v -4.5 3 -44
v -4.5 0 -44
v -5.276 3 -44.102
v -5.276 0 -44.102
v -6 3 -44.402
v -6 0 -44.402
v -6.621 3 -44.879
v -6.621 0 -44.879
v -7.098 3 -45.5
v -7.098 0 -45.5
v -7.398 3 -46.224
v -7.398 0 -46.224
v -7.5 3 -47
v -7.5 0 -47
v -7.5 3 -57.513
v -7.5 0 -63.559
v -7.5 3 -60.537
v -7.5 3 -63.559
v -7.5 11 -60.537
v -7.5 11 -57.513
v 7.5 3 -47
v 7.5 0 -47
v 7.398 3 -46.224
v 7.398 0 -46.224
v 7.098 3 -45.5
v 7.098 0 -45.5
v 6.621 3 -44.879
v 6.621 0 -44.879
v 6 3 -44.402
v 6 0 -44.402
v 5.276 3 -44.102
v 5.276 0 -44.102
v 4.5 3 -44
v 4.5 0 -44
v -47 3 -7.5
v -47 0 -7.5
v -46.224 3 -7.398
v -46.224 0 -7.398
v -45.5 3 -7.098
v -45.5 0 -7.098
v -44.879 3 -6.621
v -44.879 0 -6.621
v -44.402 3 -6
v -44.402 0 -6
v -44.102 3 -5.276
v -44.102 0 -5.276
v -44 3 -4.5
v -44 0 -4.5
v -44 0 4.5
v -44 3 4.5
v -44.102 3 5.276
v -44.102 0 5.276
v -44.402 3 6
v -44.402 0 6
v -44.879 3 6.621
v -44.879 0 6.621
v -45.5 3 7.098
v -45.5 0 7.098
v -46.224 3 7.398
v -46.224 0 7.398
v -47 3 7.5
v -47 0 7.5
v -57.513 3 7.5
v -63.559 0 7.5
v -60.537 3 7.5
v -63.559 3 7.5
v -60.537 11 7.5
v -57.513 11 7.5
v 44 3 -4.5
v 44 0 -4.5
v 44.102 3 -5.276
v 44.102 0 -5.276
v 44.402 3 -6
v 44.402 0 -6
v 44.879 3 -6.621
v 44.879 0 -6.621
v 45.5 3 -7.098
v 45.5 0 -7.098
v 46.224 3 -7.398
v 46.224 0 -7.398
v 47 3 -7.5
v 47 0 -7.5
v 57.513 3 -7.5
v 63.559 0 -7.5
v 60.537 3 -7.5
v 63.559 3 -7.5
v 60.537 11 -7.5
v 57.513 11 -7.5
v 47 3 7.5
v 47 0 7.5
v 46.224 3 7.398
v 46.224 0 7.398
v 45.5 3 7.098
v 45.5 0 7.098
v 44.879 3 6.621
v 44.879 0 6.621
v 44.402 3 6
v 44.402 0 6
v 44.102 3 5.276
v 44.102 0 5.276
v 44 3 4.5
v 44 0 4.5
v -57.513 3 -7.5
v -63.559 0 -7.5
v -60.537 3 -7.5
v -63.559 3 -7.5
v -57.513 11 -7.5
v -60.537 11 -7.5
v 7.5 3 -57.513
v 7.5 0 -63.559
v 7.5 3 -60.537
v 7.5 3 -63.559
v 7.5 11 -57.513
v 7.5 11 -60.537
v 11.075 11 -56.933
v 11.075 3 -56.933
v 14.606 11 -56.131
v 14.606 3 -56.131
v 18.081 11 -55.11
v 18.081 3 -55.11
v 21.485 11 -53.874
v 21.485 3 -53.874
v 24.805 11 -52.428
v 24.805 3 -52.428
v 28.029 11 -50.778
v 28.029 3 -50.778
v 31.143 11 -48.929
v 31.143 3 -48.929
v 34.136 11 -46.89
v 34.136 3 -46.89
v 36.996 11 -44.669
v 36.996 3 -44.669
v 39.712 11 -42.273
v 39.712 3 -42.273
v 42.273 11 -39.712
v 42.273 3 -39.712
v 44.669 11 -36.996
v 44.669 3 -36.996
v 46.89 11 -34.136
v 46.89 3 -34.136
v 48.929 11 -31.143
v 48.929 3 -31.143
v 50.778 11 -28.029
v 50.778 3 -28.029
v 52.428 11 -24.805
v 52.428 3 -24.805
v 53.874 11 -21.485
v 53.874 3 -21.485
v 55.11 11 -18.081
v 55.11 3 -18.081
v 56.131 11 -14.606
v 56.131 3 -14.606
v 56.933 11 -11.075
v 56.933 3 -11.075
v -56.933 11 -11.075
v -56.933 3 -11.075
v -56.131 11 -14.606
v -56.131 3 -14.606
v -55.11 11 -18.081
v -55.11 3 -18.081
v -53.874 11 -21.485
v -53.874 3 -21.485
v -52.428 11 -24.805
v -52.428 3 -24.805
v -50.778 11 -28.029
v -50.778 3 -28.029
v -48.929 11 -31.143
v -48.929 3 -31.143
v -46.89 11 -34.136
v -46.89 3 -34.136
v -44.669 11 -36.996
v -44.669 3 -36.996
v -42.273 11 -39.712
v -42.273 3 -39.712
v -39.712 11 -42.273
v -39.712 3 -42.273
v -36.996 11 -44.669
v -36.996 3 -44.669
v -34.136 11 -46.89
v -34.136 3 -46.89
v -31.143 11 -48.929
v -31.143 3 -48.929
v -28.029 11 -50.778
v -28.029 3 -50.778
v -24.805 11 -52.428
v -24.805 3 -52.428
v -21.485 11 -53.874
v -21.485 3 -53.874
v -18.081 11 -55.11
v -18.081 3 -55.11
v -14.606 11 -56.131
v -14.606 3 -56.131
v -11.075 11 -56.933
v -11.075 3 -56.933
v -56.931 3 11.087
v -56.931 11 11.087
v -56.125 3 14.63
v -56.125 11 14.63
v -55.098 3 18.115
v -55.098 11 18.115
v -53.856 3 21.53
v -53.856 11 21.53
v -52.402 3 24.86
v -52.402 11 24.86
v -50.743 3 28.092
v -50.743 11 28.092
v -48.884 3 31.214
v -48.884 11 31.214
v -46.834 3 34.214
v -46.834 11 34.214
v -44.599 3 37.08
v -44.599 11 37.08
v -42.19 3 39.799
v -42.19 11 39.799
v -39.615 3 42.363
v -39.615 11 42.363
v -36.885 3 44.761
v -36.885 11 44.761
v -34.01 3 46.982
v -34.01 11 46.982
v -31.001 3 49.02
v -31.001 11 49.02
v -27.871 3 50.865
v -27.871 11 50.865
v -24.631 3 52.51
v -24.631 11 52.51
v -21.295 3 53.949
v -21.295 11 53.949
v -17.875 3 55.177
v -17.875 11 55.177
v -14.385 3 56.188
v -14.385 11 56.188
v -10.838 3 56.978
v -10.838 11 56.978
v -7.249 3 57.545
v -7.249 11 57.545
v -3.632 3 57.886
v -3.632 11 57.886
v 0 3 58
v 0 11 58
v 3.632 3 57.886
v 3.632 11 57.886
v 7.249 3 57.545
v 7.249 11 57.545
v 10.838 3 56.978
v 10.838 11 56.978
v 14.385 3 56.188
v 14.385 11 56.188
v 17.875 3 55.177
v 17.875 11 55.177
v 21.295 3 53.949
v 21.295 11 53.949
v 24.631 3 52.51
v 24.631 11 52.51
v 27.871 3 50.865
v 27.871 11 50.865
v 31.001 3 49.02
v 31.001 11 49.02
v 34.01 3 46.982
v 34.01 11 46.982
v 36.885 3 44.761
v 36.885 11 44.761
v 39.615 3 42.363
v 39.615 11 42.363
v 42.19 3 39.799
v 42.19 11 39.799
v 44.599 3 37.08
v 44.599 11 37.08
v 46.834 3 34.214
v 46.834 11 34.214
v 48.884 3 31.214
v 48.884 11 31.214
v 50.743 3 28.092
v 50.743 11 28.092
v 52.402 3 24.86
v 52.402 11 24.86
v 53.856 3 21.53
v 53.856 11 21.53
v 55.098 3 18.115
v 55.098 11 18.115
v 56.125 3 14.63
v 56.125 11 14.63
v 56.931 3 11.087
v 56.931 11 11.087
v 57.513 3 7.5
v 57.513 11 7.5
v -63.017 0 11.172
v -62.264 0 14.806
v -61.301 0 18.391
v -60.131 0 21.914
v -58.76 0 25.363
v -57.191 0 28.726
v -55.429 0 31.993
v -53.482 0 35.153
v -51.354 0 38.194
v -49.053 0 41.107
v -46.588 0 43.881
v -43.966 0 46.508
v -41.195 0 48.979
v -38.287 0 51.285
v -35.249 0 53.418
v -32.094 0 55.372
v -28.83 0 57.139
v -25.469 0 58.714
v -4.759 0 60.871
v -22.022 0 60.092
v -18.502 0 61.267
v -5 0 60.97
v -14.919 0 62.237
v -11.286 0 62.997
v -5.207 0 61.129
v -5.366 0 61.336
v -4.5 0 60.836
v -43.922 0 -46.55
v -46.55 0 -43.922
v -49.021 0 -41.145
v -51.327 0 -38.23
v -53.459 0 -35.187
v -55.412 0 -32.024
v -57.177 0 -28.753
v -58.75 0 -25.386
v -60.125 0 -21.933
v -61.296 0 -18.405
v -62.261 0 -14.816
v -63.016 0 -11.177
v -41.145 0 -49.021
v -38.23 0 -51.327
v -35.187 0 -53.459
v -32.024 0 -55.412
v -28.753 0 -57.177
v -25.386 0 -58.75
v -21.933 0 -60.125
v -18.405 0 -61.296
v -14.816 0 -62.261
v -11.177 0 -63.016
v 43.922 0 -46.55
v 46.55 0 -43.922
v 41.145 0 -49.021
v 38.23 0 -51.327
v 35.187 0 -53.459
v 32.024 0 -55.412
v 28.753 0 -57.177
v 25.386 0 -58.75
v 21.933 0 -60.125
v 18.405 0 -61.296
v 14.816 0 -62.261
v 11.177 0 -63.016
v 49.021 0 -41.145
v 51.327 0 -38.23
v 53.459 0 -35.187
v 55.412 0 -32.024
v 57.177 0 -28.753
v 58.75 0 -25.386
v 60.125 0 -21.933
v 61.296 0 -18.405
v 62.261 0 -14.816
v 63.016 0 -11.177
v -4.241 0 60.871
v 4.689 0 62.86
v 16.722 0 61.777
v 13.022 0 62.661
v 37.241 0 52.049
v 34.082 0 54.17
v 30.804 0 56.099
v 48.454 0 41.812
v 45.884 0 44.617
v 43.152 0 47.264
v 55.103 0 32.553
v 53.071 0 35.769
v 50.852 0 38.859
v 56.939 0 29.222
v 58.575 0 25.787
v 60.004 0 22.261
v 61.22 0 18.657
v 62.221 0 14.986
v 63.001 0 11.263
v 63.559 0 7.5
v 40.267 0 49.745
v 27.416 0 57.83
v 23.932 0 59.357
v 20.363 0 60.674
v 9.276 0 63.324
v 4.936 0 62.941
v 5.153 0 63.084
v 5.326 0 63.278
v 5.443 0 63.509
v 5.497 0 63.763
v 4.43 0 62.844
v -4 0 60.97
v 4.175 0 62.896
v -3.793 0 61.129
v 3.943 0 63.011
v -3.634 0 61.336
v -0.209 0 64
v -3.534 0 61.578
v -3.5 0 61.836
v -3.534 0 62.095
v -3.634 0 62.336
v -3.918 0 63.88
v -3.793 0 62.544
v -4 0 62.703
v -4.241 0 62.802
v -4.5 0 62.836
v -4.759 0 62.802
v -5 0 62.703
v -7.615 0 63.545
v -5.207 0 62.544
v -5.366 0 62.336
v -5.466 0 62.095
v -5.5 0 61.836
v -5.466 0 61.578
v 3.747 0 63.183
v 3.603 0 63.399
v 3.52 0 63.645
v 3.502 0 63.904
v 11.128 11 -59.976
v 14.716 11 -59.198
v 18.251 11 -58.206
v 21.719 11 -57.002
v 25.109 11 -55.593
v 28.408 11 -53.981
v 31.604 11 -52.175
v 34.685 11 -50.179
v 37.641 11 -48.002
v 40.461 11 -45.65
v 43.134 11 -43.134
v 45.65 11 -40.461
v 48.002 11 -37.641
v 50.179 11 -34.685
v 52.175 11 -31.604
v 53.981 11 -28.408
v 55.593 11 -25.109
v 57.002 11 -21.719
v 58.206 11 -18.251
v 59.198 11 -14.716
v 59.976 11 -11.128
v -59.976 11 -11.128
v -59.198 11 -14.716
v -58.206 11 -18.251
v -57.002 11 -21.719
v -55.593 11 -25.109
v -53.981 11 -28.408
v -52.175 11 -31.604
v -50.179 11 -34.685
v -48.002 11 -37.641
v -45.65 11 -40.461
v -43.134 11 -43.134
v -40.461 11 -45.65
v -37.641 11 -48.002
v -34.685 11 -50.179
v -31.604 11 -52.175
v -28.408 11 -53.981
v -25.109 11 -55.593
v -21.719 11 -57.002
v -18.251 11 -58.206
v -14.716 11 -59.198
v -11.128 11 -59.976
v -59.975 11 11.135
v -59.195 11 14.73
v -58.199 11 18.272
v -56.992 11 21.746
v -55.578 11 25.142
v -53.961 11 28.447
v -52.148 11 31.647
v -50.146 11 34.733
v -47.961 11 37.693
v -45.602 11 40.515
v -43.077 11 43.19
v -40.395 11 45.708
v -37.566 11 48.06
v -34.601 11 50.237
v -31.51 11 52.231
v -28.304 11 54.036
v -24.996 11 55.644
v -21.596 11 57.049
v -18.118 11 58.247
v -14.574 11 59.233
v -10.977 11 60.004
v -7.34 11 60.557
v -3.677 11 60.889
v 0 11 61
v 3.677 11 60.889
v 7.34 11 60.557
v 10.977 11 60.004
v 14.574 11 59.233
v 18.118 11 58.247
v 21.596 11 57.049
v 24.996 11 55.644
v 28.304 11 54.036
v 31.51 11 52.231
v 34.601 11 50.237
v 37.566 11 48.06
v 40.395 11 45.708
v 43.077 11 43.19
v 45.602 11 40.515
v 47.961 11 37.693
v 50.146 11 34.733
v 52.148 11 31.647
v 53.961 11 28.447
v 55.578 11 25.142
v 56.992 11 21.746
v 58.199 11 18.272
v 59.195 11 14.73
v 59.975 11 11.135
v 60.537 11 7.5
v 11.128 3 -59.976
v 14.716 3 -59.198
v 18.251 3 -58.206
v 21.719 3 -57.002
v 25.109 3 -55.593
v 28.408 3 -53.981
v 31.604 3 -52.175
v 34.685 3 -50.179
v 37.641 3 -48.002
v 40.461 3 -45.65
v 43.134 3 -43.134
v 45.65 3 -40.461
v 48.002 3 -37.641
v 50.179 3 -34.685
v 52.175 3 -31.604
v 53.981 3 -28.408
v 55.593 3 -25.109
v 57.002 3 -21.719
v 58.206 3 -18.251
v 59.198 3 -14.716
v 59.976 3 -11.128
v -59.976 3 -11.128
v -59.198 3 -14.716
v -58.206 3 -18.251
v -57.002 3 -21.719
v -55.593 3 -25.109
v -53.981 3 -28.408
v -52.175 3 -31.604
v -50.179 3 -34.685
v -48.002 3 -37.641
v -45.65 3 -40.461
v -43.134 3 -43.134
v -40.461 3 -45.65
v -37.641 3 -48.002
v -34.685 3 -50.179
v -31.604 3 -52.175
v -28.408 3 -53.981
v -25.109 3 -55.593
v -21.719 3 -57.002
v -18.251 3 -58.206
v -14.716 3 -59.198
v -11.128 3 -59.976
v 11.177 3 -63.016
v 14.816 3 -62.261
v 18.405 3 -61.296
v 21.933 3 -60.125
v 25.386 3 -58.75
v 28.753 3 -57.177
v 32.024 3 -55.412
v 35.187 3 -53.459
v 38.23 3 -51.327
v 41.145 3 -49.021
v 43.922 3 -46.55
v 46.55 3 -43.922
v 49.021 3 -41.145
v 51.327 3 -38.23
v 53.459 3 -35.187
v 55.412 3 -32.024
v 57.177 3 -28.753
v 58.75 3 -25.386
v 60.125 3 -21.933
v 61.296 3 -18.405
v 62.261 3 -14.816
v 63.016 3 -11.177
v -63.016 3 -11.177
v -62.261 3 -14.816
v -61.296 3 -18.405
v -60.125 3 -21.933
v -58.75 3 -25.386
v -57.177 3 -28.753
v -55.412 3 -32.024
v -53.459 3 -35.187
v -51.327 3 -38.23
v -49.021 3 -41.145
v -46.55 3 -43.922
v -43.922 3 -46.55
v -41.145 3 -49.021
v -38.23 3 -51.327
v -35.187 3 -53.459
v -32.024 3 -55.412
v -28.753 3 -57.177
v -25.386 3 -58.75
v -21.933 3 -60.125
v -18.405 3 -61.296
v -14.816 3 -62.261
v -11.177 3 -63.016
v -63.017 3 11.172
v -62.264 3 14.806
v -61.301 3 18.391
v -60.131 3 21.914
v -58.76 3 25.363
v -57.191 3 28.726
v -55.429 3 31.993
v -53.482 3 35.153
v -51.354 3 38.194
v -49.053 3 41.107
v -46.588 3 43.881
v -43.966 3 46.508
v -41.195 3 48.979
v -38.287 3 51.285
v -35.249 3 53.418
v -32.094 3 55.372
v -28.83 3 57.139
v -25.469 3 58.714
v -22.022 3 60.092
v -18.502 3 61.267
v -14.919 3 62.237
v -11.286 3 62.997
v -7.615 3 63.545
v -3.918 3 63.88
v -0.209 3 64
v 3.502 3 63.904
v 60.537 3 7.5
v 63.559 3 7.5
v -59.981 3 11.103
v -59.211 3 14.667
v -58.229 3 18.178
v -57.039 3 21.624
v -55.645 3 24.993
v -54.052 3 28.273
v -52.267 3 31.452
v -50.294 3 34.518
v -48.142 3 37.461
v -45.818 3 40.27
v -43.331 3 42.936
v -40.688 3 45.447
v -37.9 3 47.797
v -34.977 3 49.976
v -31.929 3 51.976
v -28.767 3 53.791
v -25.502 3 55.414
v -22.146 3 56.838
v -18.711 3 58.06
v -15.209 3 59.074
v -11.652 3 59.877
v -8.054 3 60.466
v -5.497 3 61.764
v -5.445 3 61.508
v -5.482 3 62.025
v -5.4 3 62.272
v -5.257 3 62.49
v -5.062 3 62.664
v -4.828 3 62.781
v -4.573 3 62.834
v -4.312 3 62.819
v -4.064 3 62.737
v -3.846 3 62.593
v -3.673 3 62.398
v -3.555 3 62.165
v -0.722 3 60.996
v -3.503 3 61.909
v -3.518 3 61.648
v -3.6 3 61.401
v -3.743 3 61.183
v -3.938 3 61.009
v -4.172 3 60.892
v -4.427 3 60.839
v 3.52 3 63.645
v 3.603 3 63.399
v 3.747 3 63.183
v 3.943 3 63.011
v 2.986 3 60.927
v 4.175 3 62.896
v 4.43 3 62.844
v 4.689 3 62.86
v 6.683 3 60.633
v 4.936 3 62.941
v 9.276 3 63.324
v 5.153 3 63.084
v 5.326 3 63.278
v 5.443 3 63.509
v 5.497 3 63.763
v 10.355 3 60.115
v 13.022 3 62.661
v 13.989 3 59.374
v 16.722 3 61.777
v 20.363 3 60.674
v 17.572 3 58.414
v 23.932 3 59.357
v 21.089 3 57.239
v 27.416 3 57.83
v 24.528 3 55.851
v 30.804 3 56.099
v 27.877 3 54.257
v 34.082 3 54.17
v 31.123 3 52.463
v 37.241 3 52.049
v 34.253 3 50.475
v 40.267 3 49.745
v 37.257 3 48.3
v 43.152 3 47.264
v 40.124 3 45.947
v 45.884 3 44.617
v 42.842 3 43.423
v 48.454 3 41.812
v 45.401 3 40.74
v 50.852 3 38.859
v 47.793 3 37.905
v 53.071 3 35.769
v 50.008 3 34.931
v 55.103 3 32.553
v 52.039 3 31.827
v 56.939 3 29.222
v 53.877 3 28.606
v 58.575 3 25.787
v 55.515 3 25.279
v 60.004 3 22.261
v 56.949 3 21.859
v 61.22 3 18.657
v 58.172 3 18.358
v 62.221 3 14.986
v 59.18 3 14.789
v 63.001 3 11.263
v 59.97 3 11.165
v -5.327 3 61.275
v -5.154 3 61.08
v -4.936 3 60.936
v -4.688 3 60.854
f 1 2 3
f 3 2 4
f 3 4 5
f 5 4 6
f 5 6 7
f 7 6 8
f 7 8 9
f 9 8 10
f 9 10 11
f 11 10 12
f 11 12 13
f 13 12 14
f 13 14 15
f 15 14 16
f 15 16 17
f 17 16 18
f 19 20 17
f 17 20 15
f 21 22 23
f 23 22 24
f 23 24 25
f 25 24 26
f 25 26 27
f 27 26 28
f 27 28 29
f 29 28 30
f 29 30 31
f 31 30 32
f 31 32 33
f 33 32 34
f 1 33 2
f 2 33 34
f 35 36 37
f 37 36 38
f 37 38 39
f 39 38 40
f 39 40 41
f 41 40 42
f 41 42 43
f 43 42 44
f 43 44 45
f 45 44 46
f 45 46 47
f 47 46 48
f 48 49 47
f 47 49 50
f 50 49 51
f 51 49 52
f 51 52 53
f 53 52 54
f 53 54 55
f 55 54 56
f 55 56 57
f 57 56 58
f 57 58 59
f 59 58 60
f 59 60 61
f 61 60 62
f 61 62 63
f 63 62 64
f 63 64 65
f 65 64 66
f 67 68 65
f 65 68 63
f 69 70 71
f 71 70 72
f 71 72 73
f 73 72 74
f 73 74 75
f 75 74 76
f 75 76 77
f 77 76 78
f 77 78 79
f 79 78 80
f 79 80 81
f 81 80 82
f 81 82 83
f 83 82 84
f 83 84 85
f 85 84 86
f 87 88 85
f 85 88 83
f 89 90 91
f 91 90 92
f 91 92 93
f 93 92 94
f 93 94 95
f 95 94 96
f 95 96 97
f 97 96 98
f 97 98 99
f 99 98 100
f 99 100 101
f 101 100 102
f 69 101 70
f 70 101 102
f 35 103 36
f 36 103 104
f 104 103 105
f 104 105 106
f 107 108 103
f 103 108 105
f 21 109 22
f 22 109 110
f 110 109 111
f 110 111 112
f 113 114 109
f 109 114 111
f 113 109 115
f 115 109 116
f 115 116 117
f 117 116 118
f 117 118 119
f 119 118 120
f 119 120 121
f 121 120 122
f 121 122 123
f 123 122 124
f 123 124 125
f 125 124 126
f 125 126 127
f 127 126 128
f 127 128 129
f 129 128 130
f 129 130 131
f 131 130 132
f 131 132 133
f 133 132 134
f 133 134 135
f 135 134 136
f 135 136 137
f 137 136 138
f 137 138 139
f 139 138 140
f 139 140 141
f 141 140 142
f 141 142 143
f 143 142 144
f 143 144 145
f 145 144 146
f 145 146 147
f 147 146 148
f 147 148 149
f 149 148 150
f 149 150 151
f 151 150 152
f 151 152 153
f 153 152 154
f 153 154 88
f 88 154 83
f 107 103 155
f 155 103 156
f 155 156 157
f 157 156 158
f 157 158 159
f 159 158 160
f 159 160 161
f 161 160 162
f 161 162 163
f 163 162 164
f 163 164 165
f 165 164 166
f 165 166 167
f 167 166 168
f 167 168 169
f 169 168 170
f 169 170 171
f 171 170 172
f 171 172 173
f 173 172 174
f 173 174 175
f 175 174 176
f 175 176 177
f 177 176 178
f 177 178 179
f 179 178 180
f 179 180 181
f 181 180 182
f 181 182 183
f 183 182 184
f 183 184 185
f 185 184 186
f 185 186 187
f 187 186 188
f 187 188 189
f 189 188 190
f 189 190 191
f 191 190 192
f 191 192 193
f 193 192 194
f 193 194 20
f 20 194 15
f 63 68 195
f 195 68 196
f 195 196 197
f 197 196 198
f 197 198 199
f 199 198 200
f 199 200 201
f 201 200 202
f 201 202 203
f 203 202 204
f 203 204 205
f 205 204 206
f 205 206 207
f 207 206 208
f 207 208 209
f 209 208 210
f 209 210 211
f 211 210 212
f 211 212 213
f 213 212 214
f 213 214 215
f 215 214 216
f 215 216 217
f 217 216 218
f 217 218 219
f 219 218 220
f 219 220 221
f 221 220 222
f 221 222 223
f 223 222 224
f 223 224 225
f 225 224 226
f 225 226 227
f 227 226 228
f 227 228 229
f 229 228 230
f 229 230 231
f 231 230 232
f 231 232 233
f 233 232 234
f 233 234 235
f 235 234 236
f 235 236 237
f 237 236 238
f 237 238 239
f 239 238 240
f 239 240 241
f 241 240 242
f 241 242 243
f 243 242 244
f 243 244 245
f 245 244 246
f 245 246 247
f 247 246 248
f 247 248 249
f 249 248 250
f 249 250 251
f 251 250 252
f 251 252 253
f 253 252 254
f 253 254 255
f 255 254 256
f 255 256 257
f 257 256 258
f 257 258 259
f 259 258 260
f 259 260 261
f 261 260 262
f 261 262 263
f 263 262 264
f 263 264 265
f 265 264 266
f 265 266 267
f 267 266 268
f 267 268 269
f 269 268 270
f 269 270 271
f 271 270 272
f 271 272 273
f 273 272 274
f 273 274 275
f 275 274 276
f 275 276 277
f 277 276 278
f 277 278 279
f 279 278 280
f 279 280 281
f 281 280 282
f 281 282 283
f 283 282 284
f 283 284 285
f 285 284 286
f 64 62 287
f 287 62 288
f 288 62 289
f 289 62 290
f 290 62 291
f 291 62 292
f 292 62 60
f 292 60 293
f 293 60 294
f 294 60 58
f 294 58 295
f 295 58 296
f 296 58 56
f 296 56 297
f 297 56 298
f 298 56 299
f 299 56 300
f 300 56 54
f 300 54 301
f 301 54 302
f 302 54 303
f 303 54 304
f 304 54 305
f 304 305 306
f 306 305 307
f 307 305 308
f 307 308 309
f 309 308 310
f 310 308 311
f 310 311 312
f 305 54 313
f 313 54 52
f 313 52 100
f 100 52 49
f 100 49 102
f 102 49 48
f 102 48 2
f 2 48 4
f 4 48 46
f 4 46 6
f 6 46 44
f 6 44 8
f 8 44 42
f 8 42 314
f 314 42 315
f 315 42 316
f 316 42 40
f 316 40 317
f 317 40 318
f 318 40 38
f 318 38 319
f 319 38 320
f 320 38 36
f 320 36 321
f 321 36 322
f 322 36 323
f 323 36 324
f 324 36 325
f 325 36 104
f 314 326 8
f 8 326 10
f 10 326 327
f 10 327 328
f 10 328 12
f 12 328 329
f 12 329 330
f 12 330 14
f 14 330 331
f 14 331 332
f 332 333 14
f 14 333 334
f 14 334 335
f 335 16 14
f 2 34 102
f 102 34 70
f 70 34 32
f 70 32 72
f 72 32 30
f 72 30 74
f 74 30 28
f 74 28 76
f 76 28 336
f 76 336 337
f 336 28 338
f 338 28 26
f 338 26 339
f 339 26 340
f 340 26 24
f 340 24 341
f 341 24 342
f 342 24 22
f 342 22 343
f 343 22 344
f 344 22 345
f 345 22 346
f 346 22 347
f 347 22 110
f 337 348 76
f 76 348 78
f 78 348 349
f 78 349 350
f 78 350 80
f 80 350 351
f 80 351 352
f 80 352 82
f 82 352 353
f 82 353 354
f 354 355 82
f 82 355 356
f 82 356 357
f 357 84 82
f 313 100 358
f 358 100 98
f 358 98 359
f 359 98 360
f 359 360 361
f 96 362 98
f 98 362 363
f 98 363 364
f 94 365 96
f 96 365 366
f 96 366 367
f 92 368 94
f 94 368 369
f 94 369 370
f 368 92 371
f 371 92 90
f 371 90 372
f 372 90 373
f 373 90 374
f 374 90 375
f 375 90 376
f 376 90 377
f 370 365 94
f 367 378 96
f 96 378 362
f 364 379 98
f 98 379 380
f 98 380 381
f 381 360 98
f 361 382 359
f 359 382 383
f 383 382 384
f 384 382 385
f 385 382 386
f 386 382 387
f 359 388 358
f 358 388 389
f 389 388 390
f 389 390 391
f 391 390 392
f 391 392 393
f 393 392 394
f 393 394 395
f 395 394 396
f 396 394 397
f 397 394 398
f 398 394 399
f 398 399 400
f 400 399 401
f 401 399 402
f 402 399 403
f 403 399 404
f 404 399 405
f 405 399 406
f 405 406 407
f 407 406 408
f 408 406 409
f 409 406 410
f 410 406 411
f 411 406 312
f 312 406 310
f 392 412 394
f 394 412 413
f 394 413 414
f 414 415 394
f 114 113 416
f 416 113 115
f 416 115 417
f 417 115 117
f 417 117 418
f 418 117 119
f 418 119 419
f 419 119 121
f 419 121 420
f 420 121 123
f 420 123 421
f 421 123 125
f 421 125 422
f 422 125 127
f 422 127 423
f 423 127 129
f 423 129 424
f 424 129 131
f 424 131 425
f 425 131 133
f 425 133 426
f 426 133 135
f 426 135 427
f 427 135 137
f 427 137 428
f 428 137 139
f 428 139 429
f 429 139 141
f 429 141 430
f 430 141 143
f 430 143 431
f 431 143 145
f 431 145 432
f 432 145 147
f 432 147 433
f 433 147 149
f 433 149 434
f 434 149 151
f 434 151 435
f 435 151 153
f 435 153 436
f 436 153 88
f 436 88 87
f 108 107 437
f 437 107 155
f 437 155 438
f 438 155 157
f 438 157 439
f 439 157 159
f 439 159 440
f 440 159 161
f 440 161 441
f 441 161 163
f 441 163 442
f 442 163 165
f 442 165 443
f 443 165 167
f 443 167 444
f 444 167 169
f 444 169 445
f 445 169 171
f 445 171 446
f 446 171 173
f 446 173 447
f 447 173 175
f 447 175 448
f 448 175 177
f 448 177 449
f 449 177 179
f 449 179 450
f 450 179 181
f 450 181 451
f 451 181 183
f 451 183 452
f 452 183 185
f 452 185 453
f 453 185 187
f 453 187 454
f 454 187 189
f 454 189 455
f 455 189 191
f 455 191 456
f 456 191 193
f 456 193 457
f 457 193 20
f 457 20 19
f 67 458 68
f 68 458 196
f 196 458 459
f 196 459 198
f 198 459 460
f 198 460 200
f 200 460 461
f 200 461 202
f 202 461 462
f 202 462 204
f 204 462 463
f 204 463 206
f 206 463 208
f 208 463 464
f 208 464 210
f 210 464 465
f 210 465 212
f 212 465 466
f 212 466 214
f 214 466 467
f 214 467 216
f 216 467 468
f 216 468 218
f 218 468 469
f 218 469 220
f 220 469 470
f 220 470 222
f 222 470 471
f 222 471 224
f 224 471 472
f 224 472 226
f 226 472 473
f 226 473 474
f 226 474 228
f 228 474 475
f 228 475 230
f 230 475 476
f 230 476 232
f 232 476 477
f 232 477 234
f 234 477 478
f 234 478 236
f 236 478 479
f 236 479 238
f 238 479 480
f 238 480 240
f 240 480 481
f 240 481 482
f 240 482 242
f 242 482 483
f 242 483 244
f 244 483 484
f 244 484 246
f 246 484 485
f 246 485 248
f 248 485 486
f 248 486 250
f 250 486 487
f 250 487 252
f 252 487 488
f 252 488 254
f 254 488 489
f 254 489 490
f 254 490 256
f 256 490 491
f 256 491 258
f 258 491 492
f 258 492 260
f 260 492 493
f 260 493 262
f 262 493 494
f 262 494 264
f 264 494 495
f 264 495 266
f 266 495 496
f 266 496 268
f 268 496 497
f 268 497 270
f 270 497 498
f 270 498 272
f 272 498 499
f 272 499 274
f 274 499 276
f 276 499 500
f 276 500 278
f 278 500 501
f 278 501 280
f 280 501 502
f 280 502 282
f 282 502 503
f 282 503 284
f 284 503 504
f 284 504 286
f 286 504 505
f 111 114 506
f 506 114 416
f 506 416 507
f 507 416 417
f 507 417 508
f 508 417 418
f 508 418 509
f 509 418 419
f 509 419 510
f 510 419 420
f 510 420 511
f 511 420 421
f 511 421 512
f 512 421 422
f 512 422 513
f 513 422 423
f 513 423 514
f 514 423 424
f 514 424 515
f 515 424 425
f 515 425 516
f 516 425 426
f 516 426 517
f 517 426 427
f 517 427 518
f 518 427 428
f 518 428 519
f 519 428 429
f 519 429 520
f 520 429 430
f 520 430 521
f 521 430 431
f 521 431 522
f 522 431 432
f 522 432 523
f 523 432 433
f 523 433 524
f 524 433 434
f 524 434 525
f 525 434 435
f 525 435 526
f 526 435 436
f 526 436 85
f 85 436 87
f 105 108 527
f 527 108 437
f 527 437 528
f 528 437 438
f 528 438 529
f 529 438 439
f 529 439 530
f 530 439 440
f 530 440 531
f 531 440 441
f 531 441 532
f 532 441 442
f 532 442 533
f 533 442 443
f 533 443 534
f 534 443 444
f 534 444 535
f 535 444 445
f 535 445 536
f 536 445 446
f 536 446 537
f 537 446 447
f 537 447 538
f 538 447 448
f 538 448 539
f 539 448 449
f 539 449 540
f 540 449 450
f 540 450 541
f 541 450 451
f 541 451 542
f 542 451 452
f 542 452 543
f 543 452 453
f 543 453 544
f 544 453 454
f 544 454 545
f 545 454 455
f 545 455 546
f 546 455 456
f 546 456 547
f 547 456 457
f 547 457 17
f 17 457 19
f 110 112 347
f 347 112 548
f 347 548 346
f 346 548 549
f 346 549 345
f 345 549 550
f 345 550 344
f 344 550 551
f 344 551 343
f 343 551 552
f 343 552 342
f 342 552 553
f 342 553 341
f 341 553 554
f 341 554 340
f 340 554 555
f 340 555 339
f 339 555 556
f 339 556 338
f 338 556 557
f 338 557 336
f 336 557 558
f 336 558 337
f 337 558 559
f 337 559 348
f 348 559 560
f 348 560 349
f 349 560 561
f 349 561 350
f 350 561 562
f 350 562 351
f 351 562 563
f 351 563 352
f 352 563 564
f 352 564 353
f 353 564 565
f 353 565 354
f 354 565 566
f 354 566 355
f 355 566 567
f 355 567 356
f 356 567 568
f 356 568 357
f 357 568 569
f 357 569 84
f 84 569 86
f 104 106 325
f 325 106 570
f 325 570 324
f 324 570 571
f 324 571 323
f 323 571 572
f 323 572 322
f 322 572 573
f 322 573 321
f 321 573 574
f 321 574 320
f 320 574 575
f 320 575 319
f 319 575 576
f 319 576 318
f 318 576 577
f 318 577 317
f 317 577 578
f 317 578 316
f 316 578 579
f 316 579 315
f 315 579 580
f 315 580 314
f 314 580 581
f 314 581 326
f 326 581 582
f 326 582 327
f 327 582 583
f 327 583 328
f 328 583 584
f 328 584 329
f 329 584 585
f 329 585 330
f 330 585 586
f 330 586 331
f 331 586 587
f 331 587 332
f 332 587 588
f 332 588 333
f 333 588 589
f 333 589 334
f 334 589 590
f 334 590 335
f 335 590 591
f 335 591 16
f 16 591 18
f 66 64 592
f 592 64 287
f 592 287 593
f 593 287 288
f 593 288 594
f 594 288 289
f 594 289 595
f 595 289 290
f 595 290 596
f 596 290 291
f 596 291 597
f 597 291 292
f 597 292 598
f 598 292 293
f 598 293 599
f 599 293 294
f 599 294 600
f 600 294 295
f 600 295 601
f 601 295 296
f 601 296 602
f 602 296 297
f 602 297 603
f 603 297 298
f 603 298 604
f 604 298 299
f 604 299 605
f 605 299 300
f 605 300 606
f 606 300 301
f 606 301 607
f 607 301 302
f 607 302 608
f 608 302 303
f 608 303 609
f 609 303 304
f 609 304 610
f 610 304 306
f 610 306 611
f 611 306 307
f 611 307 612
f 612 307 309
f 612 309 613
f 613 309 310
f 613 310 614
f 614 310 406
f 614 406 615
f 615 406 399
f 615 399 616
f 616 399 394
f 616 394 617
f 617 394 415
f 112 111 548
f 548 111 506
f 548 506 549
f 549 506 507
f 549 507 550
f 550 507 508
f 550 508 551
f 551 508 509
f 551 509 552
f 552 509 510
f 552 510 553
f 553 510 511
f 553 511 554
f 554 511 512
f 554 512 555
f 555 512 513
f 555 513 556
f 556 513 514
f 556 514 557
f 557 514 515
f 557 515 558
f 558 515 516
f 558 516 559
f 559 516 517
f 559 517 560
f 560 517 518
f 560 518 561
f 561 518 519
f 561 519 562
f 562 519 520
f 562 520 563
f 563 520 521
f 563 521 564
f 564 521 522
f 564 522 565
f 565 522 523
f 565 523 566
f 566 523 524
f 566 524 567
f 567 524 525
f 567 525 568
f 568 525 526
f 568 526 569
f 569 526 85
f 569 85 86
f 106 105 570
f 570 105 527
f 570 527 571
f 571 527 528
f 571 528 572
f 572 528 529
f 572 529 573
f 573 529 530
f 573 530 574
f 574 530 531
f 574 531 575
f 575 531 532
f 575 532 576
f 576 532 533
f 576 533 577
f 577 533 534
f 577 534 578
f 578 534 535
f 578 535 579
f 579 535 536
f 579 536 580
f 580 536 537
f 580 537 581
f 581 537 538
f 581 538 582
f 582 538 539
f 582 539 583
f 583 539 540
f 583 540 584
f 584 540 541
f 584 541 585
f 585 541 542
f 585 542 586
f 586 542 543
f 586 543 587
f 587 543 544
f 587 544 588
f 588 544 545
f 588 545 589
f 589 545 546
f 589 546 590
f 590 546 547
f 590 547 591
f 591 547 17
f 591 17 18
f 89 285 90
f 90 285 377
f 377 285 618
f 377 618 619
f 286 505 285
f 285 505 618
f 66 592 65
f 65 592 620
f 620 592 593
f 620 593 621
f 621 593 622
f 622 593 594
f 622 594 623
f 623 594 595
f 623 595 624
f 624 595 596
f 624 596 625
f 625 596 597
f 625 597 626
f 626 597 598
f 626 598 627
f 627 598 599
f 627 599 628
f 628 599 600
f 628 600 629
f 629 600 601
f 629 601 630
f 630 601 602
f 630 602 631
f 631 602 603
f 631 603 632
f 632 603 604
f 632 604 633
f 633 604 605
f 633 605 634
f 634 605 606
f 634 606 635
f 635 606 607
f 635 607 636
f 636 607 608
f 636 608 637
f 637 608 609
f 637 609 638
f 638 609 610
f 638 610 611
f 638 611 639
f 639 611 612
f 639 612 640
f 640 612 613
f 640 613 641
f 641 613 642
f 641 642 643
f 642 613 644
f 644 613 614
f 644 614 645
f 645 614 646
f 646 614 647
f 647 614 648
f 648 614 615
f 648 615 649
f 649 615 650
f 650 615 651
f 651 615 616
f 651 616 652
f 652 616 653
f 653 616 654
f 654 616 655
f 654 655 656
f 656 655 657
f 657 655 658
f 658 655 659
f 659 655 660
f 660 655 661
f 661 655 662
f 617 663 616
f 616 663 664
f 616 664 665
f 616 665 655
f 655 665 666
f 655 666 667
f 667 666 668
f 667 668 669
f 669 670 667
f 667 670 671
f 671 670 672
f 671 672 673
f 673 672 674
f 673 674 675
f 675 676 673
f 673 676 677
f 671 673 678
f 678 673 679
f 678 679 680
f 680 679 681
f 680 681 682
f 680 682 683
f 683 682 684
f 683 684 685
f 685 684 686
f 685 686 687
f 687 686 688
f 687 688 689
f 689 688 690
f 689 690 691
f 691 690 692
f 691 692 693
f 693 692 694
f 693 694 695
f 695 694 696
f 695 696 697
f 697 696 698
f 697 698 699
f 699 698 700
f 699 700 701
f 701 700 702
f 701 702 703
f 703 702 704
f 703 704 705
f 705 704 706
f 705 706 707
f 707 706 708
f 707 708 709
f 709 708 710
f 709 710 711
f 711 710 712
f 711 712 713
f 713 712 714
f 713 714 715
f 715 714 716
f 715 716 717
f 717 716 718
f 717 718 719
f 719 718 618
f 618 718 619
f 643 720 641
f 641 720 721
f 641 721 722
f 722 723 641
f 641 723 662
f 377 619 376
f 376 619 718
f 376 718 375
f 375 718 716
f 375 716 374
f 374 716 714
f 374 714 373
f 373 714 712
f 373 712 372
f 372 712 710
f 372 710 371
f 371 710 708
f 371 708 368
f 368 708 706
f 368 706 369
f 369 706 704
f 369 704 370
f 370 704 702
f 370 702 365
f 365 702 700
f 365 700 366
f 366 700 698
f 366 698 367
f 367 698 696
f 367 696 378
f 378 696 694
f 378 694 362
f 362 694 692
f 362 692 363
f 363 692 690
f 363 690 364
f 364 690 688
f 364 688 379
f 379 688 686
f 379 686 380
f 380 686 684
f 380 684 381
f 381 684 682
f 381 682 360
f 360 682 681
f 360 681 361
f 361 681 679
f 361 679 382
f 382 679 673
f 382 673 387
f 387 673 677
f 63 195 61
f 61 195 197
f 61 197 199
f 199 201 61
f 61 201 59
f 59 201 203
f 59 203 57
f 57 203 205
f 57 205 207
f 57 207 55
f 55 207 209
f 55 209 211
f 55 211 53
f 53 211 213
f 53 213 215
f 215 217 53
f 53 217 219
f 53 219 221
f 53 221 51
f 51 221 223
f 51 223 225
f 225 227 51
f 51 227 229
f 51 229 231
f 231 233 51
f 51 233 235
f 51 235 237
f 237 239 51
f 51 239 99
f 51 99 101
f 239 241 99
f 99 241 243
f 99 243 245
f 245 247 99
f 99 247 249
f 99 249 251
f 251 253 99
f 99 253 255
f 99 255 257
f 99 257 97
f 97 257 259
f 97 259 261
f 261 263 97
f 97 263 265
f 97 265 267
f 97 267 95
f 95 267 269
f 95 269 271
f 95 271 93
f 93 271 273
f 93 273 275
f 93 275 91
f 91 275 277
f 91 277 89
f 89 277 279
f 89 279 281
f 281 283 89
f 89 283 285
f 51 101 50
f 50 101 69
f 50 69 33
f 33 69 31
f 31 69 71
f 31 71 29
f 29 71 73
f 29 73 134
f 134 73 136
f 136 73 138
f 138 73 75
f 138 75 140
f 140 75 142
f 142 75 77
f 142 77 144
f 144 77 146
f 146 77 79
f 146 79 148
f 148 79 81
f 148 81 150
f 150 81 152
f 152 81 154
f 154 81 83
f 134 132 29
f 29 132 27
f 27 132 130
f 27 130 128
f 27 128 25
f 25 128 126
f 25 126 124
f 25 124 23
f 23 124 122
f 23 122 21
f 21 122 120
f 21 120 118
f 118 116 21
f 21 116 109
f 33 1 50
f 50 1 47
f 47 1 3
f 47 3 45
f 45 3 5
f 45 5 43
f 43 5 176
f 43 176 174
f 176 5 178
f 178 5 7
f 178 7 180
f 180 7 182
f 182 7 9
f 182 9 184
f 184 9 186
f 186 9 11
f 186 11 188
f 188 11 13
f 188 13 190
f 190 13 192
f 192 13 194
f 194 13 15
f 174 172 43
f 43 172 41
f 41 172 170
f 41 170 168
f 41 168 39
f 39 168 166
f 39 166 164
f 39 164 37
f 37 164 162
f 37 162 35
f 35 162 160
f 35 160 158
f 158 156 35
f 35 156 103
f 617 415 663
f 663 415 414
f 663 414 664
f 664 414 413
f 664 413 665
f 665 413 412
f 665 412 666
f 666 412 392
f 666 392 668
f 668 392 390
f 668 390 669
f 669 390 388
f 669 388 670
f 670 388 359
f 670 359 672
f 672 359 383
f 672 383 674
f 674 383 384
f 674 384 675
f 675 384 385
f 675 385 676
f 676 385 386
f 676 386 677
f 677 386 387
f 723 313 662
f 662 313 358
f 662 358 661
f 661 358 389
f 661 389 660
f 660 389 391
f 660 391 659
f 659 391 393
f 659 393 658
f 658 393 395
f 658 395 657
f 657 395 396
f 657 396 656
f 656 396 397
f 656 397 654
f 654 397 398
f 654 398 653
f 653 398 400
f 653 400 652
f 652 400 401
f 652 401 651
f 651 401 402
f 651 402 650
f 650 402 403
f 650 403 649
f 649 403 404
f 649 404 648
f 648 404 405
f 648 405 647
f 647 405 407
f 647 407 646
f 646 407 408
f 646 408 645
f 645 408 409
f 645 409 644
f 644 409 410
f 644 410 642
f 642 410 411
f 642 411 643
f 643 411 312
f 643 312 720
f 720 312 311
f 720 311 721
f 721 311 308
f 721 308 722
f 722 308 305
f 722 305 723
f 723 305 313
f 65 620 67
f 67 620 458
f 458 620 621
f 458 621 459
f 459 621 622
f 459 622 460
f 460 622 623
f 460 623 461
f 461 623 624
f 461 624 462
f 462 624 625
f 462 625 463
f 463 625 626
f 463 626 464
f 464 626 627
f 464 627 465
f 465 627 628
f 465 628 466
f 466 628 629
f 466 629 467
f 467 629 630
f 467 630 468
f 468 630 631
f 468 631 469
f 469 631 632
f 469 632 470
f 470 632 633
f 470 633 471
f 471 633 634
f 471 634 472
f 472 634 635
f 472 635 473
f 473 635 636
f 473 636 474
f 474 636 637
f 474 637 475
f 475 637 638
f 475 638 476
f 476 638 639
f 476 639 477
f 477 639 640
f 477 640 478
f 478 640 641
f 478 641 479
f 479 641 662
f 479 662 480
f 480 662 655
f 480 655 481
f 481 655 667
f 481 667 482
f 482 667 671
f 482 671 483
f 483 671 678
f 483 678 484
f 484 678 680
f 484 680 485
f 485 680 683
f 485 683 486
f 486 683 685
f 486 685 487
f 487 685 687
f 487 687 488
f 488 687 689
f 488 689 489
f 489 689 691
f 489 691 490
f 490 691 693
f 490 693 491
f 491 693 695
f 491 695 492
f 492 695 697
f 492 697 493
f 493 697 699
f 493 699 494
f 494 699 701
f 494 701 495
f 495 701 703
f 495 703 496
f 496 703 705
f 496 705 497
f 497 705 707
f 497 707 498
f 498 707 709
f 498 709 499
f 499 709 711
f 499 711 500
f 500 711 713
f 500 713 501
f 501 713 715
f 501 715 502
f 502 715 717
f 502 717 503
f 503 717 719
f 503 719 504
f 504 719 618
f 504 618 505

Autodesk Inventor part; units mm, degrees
ref_plane "YZ Plane" through (0, 0, 0) normal (1, 0, 0) x (0, 1, 0)
ref_plane "XZ Plane" through (0, 0, 0) normal (0, 1, 0) x (-1, 0, 0)
ref_plane "XY Plane" through (0, 0, 0) normal (0, 0, 1) x (1, 0, 0)
sketch "Sketch1" plane through (0, 0, 0) normal (0, 1, 0) x (-1, 0, 0)
  circle A0 centre (0, 0) radius 61
  circle A1 centre (0, 0) radius 58
  circle A2 centre (0, 0) radius 64
  dimension "d0" = 122
  dimension "d1" = 3
  dimension "d2" = 3
extrude "Extrusion1" add sketch "Sketch1" along normal blind 11 contours A0
extrude "Extrusion2" add sketch "Sketch1" along normal blind 3 contours A2
sketch "Sketch2" plane through (0, 3, 0) normal (0, 1, 0) x (1, 0, 0)
  circle A0 centre (-4.5, -61.8365) radius 1
  circle A1 centre (0, 0) radius 61 projected
  circle A2 centre (0, 0) radius 63 construction
  circle A3 centre (4.5, -63.8416) radius 1
  dimension "d7" = 2
  dimension "d8" = 4.5
  dimension "d9" = 4.5
extrude "Extrusion3" cut sketch "Sketch2" against normal up to surface (3 mm away) contours A0 | A3
extrude "Extrusion4" add sketch "Sketch1" along normal blind 3 contours A1
sketch "Sketch3" plane through (0, 0, 0) normal (0, -1, 0) x (1, 0, 0)
  line L0 (64, -7.5) -> (44, -7.5)
  line L1 (44, -7.5) -> (44, 7.5)
  line L2 (44, 7.5) -> (64, 7.5)
  line L3 (64, 7.5) -> (64, -7.5)
  arc A0 (3.502, 63.9041) -> (5.4969, 63.7635) centre (0, 0) ccw projected
  point P0 (64, 0)
  dimension "d14" = 15
  dimension "d15" = 20
extrude "Extrusion5" cut sketch "Sketch3" against normal up to surface (11 mm away)
pattern_circular "Circular Pattern1" count 3 over 180 about axis through (0, -10, 0) along (0, 1, 0) of "Extrusion5"
fillet "Fillet1" radius 3 6 edges at (44, 1.5, 7.5) (44, 1.5, -7.5) (-44, 1.5, 7.5) (-44, 1.5, -7.5) (7.5, 1.5, -44) (-7.5, 1.5, -44)
properties part number "122mm-CoilForm_3DPrint"
